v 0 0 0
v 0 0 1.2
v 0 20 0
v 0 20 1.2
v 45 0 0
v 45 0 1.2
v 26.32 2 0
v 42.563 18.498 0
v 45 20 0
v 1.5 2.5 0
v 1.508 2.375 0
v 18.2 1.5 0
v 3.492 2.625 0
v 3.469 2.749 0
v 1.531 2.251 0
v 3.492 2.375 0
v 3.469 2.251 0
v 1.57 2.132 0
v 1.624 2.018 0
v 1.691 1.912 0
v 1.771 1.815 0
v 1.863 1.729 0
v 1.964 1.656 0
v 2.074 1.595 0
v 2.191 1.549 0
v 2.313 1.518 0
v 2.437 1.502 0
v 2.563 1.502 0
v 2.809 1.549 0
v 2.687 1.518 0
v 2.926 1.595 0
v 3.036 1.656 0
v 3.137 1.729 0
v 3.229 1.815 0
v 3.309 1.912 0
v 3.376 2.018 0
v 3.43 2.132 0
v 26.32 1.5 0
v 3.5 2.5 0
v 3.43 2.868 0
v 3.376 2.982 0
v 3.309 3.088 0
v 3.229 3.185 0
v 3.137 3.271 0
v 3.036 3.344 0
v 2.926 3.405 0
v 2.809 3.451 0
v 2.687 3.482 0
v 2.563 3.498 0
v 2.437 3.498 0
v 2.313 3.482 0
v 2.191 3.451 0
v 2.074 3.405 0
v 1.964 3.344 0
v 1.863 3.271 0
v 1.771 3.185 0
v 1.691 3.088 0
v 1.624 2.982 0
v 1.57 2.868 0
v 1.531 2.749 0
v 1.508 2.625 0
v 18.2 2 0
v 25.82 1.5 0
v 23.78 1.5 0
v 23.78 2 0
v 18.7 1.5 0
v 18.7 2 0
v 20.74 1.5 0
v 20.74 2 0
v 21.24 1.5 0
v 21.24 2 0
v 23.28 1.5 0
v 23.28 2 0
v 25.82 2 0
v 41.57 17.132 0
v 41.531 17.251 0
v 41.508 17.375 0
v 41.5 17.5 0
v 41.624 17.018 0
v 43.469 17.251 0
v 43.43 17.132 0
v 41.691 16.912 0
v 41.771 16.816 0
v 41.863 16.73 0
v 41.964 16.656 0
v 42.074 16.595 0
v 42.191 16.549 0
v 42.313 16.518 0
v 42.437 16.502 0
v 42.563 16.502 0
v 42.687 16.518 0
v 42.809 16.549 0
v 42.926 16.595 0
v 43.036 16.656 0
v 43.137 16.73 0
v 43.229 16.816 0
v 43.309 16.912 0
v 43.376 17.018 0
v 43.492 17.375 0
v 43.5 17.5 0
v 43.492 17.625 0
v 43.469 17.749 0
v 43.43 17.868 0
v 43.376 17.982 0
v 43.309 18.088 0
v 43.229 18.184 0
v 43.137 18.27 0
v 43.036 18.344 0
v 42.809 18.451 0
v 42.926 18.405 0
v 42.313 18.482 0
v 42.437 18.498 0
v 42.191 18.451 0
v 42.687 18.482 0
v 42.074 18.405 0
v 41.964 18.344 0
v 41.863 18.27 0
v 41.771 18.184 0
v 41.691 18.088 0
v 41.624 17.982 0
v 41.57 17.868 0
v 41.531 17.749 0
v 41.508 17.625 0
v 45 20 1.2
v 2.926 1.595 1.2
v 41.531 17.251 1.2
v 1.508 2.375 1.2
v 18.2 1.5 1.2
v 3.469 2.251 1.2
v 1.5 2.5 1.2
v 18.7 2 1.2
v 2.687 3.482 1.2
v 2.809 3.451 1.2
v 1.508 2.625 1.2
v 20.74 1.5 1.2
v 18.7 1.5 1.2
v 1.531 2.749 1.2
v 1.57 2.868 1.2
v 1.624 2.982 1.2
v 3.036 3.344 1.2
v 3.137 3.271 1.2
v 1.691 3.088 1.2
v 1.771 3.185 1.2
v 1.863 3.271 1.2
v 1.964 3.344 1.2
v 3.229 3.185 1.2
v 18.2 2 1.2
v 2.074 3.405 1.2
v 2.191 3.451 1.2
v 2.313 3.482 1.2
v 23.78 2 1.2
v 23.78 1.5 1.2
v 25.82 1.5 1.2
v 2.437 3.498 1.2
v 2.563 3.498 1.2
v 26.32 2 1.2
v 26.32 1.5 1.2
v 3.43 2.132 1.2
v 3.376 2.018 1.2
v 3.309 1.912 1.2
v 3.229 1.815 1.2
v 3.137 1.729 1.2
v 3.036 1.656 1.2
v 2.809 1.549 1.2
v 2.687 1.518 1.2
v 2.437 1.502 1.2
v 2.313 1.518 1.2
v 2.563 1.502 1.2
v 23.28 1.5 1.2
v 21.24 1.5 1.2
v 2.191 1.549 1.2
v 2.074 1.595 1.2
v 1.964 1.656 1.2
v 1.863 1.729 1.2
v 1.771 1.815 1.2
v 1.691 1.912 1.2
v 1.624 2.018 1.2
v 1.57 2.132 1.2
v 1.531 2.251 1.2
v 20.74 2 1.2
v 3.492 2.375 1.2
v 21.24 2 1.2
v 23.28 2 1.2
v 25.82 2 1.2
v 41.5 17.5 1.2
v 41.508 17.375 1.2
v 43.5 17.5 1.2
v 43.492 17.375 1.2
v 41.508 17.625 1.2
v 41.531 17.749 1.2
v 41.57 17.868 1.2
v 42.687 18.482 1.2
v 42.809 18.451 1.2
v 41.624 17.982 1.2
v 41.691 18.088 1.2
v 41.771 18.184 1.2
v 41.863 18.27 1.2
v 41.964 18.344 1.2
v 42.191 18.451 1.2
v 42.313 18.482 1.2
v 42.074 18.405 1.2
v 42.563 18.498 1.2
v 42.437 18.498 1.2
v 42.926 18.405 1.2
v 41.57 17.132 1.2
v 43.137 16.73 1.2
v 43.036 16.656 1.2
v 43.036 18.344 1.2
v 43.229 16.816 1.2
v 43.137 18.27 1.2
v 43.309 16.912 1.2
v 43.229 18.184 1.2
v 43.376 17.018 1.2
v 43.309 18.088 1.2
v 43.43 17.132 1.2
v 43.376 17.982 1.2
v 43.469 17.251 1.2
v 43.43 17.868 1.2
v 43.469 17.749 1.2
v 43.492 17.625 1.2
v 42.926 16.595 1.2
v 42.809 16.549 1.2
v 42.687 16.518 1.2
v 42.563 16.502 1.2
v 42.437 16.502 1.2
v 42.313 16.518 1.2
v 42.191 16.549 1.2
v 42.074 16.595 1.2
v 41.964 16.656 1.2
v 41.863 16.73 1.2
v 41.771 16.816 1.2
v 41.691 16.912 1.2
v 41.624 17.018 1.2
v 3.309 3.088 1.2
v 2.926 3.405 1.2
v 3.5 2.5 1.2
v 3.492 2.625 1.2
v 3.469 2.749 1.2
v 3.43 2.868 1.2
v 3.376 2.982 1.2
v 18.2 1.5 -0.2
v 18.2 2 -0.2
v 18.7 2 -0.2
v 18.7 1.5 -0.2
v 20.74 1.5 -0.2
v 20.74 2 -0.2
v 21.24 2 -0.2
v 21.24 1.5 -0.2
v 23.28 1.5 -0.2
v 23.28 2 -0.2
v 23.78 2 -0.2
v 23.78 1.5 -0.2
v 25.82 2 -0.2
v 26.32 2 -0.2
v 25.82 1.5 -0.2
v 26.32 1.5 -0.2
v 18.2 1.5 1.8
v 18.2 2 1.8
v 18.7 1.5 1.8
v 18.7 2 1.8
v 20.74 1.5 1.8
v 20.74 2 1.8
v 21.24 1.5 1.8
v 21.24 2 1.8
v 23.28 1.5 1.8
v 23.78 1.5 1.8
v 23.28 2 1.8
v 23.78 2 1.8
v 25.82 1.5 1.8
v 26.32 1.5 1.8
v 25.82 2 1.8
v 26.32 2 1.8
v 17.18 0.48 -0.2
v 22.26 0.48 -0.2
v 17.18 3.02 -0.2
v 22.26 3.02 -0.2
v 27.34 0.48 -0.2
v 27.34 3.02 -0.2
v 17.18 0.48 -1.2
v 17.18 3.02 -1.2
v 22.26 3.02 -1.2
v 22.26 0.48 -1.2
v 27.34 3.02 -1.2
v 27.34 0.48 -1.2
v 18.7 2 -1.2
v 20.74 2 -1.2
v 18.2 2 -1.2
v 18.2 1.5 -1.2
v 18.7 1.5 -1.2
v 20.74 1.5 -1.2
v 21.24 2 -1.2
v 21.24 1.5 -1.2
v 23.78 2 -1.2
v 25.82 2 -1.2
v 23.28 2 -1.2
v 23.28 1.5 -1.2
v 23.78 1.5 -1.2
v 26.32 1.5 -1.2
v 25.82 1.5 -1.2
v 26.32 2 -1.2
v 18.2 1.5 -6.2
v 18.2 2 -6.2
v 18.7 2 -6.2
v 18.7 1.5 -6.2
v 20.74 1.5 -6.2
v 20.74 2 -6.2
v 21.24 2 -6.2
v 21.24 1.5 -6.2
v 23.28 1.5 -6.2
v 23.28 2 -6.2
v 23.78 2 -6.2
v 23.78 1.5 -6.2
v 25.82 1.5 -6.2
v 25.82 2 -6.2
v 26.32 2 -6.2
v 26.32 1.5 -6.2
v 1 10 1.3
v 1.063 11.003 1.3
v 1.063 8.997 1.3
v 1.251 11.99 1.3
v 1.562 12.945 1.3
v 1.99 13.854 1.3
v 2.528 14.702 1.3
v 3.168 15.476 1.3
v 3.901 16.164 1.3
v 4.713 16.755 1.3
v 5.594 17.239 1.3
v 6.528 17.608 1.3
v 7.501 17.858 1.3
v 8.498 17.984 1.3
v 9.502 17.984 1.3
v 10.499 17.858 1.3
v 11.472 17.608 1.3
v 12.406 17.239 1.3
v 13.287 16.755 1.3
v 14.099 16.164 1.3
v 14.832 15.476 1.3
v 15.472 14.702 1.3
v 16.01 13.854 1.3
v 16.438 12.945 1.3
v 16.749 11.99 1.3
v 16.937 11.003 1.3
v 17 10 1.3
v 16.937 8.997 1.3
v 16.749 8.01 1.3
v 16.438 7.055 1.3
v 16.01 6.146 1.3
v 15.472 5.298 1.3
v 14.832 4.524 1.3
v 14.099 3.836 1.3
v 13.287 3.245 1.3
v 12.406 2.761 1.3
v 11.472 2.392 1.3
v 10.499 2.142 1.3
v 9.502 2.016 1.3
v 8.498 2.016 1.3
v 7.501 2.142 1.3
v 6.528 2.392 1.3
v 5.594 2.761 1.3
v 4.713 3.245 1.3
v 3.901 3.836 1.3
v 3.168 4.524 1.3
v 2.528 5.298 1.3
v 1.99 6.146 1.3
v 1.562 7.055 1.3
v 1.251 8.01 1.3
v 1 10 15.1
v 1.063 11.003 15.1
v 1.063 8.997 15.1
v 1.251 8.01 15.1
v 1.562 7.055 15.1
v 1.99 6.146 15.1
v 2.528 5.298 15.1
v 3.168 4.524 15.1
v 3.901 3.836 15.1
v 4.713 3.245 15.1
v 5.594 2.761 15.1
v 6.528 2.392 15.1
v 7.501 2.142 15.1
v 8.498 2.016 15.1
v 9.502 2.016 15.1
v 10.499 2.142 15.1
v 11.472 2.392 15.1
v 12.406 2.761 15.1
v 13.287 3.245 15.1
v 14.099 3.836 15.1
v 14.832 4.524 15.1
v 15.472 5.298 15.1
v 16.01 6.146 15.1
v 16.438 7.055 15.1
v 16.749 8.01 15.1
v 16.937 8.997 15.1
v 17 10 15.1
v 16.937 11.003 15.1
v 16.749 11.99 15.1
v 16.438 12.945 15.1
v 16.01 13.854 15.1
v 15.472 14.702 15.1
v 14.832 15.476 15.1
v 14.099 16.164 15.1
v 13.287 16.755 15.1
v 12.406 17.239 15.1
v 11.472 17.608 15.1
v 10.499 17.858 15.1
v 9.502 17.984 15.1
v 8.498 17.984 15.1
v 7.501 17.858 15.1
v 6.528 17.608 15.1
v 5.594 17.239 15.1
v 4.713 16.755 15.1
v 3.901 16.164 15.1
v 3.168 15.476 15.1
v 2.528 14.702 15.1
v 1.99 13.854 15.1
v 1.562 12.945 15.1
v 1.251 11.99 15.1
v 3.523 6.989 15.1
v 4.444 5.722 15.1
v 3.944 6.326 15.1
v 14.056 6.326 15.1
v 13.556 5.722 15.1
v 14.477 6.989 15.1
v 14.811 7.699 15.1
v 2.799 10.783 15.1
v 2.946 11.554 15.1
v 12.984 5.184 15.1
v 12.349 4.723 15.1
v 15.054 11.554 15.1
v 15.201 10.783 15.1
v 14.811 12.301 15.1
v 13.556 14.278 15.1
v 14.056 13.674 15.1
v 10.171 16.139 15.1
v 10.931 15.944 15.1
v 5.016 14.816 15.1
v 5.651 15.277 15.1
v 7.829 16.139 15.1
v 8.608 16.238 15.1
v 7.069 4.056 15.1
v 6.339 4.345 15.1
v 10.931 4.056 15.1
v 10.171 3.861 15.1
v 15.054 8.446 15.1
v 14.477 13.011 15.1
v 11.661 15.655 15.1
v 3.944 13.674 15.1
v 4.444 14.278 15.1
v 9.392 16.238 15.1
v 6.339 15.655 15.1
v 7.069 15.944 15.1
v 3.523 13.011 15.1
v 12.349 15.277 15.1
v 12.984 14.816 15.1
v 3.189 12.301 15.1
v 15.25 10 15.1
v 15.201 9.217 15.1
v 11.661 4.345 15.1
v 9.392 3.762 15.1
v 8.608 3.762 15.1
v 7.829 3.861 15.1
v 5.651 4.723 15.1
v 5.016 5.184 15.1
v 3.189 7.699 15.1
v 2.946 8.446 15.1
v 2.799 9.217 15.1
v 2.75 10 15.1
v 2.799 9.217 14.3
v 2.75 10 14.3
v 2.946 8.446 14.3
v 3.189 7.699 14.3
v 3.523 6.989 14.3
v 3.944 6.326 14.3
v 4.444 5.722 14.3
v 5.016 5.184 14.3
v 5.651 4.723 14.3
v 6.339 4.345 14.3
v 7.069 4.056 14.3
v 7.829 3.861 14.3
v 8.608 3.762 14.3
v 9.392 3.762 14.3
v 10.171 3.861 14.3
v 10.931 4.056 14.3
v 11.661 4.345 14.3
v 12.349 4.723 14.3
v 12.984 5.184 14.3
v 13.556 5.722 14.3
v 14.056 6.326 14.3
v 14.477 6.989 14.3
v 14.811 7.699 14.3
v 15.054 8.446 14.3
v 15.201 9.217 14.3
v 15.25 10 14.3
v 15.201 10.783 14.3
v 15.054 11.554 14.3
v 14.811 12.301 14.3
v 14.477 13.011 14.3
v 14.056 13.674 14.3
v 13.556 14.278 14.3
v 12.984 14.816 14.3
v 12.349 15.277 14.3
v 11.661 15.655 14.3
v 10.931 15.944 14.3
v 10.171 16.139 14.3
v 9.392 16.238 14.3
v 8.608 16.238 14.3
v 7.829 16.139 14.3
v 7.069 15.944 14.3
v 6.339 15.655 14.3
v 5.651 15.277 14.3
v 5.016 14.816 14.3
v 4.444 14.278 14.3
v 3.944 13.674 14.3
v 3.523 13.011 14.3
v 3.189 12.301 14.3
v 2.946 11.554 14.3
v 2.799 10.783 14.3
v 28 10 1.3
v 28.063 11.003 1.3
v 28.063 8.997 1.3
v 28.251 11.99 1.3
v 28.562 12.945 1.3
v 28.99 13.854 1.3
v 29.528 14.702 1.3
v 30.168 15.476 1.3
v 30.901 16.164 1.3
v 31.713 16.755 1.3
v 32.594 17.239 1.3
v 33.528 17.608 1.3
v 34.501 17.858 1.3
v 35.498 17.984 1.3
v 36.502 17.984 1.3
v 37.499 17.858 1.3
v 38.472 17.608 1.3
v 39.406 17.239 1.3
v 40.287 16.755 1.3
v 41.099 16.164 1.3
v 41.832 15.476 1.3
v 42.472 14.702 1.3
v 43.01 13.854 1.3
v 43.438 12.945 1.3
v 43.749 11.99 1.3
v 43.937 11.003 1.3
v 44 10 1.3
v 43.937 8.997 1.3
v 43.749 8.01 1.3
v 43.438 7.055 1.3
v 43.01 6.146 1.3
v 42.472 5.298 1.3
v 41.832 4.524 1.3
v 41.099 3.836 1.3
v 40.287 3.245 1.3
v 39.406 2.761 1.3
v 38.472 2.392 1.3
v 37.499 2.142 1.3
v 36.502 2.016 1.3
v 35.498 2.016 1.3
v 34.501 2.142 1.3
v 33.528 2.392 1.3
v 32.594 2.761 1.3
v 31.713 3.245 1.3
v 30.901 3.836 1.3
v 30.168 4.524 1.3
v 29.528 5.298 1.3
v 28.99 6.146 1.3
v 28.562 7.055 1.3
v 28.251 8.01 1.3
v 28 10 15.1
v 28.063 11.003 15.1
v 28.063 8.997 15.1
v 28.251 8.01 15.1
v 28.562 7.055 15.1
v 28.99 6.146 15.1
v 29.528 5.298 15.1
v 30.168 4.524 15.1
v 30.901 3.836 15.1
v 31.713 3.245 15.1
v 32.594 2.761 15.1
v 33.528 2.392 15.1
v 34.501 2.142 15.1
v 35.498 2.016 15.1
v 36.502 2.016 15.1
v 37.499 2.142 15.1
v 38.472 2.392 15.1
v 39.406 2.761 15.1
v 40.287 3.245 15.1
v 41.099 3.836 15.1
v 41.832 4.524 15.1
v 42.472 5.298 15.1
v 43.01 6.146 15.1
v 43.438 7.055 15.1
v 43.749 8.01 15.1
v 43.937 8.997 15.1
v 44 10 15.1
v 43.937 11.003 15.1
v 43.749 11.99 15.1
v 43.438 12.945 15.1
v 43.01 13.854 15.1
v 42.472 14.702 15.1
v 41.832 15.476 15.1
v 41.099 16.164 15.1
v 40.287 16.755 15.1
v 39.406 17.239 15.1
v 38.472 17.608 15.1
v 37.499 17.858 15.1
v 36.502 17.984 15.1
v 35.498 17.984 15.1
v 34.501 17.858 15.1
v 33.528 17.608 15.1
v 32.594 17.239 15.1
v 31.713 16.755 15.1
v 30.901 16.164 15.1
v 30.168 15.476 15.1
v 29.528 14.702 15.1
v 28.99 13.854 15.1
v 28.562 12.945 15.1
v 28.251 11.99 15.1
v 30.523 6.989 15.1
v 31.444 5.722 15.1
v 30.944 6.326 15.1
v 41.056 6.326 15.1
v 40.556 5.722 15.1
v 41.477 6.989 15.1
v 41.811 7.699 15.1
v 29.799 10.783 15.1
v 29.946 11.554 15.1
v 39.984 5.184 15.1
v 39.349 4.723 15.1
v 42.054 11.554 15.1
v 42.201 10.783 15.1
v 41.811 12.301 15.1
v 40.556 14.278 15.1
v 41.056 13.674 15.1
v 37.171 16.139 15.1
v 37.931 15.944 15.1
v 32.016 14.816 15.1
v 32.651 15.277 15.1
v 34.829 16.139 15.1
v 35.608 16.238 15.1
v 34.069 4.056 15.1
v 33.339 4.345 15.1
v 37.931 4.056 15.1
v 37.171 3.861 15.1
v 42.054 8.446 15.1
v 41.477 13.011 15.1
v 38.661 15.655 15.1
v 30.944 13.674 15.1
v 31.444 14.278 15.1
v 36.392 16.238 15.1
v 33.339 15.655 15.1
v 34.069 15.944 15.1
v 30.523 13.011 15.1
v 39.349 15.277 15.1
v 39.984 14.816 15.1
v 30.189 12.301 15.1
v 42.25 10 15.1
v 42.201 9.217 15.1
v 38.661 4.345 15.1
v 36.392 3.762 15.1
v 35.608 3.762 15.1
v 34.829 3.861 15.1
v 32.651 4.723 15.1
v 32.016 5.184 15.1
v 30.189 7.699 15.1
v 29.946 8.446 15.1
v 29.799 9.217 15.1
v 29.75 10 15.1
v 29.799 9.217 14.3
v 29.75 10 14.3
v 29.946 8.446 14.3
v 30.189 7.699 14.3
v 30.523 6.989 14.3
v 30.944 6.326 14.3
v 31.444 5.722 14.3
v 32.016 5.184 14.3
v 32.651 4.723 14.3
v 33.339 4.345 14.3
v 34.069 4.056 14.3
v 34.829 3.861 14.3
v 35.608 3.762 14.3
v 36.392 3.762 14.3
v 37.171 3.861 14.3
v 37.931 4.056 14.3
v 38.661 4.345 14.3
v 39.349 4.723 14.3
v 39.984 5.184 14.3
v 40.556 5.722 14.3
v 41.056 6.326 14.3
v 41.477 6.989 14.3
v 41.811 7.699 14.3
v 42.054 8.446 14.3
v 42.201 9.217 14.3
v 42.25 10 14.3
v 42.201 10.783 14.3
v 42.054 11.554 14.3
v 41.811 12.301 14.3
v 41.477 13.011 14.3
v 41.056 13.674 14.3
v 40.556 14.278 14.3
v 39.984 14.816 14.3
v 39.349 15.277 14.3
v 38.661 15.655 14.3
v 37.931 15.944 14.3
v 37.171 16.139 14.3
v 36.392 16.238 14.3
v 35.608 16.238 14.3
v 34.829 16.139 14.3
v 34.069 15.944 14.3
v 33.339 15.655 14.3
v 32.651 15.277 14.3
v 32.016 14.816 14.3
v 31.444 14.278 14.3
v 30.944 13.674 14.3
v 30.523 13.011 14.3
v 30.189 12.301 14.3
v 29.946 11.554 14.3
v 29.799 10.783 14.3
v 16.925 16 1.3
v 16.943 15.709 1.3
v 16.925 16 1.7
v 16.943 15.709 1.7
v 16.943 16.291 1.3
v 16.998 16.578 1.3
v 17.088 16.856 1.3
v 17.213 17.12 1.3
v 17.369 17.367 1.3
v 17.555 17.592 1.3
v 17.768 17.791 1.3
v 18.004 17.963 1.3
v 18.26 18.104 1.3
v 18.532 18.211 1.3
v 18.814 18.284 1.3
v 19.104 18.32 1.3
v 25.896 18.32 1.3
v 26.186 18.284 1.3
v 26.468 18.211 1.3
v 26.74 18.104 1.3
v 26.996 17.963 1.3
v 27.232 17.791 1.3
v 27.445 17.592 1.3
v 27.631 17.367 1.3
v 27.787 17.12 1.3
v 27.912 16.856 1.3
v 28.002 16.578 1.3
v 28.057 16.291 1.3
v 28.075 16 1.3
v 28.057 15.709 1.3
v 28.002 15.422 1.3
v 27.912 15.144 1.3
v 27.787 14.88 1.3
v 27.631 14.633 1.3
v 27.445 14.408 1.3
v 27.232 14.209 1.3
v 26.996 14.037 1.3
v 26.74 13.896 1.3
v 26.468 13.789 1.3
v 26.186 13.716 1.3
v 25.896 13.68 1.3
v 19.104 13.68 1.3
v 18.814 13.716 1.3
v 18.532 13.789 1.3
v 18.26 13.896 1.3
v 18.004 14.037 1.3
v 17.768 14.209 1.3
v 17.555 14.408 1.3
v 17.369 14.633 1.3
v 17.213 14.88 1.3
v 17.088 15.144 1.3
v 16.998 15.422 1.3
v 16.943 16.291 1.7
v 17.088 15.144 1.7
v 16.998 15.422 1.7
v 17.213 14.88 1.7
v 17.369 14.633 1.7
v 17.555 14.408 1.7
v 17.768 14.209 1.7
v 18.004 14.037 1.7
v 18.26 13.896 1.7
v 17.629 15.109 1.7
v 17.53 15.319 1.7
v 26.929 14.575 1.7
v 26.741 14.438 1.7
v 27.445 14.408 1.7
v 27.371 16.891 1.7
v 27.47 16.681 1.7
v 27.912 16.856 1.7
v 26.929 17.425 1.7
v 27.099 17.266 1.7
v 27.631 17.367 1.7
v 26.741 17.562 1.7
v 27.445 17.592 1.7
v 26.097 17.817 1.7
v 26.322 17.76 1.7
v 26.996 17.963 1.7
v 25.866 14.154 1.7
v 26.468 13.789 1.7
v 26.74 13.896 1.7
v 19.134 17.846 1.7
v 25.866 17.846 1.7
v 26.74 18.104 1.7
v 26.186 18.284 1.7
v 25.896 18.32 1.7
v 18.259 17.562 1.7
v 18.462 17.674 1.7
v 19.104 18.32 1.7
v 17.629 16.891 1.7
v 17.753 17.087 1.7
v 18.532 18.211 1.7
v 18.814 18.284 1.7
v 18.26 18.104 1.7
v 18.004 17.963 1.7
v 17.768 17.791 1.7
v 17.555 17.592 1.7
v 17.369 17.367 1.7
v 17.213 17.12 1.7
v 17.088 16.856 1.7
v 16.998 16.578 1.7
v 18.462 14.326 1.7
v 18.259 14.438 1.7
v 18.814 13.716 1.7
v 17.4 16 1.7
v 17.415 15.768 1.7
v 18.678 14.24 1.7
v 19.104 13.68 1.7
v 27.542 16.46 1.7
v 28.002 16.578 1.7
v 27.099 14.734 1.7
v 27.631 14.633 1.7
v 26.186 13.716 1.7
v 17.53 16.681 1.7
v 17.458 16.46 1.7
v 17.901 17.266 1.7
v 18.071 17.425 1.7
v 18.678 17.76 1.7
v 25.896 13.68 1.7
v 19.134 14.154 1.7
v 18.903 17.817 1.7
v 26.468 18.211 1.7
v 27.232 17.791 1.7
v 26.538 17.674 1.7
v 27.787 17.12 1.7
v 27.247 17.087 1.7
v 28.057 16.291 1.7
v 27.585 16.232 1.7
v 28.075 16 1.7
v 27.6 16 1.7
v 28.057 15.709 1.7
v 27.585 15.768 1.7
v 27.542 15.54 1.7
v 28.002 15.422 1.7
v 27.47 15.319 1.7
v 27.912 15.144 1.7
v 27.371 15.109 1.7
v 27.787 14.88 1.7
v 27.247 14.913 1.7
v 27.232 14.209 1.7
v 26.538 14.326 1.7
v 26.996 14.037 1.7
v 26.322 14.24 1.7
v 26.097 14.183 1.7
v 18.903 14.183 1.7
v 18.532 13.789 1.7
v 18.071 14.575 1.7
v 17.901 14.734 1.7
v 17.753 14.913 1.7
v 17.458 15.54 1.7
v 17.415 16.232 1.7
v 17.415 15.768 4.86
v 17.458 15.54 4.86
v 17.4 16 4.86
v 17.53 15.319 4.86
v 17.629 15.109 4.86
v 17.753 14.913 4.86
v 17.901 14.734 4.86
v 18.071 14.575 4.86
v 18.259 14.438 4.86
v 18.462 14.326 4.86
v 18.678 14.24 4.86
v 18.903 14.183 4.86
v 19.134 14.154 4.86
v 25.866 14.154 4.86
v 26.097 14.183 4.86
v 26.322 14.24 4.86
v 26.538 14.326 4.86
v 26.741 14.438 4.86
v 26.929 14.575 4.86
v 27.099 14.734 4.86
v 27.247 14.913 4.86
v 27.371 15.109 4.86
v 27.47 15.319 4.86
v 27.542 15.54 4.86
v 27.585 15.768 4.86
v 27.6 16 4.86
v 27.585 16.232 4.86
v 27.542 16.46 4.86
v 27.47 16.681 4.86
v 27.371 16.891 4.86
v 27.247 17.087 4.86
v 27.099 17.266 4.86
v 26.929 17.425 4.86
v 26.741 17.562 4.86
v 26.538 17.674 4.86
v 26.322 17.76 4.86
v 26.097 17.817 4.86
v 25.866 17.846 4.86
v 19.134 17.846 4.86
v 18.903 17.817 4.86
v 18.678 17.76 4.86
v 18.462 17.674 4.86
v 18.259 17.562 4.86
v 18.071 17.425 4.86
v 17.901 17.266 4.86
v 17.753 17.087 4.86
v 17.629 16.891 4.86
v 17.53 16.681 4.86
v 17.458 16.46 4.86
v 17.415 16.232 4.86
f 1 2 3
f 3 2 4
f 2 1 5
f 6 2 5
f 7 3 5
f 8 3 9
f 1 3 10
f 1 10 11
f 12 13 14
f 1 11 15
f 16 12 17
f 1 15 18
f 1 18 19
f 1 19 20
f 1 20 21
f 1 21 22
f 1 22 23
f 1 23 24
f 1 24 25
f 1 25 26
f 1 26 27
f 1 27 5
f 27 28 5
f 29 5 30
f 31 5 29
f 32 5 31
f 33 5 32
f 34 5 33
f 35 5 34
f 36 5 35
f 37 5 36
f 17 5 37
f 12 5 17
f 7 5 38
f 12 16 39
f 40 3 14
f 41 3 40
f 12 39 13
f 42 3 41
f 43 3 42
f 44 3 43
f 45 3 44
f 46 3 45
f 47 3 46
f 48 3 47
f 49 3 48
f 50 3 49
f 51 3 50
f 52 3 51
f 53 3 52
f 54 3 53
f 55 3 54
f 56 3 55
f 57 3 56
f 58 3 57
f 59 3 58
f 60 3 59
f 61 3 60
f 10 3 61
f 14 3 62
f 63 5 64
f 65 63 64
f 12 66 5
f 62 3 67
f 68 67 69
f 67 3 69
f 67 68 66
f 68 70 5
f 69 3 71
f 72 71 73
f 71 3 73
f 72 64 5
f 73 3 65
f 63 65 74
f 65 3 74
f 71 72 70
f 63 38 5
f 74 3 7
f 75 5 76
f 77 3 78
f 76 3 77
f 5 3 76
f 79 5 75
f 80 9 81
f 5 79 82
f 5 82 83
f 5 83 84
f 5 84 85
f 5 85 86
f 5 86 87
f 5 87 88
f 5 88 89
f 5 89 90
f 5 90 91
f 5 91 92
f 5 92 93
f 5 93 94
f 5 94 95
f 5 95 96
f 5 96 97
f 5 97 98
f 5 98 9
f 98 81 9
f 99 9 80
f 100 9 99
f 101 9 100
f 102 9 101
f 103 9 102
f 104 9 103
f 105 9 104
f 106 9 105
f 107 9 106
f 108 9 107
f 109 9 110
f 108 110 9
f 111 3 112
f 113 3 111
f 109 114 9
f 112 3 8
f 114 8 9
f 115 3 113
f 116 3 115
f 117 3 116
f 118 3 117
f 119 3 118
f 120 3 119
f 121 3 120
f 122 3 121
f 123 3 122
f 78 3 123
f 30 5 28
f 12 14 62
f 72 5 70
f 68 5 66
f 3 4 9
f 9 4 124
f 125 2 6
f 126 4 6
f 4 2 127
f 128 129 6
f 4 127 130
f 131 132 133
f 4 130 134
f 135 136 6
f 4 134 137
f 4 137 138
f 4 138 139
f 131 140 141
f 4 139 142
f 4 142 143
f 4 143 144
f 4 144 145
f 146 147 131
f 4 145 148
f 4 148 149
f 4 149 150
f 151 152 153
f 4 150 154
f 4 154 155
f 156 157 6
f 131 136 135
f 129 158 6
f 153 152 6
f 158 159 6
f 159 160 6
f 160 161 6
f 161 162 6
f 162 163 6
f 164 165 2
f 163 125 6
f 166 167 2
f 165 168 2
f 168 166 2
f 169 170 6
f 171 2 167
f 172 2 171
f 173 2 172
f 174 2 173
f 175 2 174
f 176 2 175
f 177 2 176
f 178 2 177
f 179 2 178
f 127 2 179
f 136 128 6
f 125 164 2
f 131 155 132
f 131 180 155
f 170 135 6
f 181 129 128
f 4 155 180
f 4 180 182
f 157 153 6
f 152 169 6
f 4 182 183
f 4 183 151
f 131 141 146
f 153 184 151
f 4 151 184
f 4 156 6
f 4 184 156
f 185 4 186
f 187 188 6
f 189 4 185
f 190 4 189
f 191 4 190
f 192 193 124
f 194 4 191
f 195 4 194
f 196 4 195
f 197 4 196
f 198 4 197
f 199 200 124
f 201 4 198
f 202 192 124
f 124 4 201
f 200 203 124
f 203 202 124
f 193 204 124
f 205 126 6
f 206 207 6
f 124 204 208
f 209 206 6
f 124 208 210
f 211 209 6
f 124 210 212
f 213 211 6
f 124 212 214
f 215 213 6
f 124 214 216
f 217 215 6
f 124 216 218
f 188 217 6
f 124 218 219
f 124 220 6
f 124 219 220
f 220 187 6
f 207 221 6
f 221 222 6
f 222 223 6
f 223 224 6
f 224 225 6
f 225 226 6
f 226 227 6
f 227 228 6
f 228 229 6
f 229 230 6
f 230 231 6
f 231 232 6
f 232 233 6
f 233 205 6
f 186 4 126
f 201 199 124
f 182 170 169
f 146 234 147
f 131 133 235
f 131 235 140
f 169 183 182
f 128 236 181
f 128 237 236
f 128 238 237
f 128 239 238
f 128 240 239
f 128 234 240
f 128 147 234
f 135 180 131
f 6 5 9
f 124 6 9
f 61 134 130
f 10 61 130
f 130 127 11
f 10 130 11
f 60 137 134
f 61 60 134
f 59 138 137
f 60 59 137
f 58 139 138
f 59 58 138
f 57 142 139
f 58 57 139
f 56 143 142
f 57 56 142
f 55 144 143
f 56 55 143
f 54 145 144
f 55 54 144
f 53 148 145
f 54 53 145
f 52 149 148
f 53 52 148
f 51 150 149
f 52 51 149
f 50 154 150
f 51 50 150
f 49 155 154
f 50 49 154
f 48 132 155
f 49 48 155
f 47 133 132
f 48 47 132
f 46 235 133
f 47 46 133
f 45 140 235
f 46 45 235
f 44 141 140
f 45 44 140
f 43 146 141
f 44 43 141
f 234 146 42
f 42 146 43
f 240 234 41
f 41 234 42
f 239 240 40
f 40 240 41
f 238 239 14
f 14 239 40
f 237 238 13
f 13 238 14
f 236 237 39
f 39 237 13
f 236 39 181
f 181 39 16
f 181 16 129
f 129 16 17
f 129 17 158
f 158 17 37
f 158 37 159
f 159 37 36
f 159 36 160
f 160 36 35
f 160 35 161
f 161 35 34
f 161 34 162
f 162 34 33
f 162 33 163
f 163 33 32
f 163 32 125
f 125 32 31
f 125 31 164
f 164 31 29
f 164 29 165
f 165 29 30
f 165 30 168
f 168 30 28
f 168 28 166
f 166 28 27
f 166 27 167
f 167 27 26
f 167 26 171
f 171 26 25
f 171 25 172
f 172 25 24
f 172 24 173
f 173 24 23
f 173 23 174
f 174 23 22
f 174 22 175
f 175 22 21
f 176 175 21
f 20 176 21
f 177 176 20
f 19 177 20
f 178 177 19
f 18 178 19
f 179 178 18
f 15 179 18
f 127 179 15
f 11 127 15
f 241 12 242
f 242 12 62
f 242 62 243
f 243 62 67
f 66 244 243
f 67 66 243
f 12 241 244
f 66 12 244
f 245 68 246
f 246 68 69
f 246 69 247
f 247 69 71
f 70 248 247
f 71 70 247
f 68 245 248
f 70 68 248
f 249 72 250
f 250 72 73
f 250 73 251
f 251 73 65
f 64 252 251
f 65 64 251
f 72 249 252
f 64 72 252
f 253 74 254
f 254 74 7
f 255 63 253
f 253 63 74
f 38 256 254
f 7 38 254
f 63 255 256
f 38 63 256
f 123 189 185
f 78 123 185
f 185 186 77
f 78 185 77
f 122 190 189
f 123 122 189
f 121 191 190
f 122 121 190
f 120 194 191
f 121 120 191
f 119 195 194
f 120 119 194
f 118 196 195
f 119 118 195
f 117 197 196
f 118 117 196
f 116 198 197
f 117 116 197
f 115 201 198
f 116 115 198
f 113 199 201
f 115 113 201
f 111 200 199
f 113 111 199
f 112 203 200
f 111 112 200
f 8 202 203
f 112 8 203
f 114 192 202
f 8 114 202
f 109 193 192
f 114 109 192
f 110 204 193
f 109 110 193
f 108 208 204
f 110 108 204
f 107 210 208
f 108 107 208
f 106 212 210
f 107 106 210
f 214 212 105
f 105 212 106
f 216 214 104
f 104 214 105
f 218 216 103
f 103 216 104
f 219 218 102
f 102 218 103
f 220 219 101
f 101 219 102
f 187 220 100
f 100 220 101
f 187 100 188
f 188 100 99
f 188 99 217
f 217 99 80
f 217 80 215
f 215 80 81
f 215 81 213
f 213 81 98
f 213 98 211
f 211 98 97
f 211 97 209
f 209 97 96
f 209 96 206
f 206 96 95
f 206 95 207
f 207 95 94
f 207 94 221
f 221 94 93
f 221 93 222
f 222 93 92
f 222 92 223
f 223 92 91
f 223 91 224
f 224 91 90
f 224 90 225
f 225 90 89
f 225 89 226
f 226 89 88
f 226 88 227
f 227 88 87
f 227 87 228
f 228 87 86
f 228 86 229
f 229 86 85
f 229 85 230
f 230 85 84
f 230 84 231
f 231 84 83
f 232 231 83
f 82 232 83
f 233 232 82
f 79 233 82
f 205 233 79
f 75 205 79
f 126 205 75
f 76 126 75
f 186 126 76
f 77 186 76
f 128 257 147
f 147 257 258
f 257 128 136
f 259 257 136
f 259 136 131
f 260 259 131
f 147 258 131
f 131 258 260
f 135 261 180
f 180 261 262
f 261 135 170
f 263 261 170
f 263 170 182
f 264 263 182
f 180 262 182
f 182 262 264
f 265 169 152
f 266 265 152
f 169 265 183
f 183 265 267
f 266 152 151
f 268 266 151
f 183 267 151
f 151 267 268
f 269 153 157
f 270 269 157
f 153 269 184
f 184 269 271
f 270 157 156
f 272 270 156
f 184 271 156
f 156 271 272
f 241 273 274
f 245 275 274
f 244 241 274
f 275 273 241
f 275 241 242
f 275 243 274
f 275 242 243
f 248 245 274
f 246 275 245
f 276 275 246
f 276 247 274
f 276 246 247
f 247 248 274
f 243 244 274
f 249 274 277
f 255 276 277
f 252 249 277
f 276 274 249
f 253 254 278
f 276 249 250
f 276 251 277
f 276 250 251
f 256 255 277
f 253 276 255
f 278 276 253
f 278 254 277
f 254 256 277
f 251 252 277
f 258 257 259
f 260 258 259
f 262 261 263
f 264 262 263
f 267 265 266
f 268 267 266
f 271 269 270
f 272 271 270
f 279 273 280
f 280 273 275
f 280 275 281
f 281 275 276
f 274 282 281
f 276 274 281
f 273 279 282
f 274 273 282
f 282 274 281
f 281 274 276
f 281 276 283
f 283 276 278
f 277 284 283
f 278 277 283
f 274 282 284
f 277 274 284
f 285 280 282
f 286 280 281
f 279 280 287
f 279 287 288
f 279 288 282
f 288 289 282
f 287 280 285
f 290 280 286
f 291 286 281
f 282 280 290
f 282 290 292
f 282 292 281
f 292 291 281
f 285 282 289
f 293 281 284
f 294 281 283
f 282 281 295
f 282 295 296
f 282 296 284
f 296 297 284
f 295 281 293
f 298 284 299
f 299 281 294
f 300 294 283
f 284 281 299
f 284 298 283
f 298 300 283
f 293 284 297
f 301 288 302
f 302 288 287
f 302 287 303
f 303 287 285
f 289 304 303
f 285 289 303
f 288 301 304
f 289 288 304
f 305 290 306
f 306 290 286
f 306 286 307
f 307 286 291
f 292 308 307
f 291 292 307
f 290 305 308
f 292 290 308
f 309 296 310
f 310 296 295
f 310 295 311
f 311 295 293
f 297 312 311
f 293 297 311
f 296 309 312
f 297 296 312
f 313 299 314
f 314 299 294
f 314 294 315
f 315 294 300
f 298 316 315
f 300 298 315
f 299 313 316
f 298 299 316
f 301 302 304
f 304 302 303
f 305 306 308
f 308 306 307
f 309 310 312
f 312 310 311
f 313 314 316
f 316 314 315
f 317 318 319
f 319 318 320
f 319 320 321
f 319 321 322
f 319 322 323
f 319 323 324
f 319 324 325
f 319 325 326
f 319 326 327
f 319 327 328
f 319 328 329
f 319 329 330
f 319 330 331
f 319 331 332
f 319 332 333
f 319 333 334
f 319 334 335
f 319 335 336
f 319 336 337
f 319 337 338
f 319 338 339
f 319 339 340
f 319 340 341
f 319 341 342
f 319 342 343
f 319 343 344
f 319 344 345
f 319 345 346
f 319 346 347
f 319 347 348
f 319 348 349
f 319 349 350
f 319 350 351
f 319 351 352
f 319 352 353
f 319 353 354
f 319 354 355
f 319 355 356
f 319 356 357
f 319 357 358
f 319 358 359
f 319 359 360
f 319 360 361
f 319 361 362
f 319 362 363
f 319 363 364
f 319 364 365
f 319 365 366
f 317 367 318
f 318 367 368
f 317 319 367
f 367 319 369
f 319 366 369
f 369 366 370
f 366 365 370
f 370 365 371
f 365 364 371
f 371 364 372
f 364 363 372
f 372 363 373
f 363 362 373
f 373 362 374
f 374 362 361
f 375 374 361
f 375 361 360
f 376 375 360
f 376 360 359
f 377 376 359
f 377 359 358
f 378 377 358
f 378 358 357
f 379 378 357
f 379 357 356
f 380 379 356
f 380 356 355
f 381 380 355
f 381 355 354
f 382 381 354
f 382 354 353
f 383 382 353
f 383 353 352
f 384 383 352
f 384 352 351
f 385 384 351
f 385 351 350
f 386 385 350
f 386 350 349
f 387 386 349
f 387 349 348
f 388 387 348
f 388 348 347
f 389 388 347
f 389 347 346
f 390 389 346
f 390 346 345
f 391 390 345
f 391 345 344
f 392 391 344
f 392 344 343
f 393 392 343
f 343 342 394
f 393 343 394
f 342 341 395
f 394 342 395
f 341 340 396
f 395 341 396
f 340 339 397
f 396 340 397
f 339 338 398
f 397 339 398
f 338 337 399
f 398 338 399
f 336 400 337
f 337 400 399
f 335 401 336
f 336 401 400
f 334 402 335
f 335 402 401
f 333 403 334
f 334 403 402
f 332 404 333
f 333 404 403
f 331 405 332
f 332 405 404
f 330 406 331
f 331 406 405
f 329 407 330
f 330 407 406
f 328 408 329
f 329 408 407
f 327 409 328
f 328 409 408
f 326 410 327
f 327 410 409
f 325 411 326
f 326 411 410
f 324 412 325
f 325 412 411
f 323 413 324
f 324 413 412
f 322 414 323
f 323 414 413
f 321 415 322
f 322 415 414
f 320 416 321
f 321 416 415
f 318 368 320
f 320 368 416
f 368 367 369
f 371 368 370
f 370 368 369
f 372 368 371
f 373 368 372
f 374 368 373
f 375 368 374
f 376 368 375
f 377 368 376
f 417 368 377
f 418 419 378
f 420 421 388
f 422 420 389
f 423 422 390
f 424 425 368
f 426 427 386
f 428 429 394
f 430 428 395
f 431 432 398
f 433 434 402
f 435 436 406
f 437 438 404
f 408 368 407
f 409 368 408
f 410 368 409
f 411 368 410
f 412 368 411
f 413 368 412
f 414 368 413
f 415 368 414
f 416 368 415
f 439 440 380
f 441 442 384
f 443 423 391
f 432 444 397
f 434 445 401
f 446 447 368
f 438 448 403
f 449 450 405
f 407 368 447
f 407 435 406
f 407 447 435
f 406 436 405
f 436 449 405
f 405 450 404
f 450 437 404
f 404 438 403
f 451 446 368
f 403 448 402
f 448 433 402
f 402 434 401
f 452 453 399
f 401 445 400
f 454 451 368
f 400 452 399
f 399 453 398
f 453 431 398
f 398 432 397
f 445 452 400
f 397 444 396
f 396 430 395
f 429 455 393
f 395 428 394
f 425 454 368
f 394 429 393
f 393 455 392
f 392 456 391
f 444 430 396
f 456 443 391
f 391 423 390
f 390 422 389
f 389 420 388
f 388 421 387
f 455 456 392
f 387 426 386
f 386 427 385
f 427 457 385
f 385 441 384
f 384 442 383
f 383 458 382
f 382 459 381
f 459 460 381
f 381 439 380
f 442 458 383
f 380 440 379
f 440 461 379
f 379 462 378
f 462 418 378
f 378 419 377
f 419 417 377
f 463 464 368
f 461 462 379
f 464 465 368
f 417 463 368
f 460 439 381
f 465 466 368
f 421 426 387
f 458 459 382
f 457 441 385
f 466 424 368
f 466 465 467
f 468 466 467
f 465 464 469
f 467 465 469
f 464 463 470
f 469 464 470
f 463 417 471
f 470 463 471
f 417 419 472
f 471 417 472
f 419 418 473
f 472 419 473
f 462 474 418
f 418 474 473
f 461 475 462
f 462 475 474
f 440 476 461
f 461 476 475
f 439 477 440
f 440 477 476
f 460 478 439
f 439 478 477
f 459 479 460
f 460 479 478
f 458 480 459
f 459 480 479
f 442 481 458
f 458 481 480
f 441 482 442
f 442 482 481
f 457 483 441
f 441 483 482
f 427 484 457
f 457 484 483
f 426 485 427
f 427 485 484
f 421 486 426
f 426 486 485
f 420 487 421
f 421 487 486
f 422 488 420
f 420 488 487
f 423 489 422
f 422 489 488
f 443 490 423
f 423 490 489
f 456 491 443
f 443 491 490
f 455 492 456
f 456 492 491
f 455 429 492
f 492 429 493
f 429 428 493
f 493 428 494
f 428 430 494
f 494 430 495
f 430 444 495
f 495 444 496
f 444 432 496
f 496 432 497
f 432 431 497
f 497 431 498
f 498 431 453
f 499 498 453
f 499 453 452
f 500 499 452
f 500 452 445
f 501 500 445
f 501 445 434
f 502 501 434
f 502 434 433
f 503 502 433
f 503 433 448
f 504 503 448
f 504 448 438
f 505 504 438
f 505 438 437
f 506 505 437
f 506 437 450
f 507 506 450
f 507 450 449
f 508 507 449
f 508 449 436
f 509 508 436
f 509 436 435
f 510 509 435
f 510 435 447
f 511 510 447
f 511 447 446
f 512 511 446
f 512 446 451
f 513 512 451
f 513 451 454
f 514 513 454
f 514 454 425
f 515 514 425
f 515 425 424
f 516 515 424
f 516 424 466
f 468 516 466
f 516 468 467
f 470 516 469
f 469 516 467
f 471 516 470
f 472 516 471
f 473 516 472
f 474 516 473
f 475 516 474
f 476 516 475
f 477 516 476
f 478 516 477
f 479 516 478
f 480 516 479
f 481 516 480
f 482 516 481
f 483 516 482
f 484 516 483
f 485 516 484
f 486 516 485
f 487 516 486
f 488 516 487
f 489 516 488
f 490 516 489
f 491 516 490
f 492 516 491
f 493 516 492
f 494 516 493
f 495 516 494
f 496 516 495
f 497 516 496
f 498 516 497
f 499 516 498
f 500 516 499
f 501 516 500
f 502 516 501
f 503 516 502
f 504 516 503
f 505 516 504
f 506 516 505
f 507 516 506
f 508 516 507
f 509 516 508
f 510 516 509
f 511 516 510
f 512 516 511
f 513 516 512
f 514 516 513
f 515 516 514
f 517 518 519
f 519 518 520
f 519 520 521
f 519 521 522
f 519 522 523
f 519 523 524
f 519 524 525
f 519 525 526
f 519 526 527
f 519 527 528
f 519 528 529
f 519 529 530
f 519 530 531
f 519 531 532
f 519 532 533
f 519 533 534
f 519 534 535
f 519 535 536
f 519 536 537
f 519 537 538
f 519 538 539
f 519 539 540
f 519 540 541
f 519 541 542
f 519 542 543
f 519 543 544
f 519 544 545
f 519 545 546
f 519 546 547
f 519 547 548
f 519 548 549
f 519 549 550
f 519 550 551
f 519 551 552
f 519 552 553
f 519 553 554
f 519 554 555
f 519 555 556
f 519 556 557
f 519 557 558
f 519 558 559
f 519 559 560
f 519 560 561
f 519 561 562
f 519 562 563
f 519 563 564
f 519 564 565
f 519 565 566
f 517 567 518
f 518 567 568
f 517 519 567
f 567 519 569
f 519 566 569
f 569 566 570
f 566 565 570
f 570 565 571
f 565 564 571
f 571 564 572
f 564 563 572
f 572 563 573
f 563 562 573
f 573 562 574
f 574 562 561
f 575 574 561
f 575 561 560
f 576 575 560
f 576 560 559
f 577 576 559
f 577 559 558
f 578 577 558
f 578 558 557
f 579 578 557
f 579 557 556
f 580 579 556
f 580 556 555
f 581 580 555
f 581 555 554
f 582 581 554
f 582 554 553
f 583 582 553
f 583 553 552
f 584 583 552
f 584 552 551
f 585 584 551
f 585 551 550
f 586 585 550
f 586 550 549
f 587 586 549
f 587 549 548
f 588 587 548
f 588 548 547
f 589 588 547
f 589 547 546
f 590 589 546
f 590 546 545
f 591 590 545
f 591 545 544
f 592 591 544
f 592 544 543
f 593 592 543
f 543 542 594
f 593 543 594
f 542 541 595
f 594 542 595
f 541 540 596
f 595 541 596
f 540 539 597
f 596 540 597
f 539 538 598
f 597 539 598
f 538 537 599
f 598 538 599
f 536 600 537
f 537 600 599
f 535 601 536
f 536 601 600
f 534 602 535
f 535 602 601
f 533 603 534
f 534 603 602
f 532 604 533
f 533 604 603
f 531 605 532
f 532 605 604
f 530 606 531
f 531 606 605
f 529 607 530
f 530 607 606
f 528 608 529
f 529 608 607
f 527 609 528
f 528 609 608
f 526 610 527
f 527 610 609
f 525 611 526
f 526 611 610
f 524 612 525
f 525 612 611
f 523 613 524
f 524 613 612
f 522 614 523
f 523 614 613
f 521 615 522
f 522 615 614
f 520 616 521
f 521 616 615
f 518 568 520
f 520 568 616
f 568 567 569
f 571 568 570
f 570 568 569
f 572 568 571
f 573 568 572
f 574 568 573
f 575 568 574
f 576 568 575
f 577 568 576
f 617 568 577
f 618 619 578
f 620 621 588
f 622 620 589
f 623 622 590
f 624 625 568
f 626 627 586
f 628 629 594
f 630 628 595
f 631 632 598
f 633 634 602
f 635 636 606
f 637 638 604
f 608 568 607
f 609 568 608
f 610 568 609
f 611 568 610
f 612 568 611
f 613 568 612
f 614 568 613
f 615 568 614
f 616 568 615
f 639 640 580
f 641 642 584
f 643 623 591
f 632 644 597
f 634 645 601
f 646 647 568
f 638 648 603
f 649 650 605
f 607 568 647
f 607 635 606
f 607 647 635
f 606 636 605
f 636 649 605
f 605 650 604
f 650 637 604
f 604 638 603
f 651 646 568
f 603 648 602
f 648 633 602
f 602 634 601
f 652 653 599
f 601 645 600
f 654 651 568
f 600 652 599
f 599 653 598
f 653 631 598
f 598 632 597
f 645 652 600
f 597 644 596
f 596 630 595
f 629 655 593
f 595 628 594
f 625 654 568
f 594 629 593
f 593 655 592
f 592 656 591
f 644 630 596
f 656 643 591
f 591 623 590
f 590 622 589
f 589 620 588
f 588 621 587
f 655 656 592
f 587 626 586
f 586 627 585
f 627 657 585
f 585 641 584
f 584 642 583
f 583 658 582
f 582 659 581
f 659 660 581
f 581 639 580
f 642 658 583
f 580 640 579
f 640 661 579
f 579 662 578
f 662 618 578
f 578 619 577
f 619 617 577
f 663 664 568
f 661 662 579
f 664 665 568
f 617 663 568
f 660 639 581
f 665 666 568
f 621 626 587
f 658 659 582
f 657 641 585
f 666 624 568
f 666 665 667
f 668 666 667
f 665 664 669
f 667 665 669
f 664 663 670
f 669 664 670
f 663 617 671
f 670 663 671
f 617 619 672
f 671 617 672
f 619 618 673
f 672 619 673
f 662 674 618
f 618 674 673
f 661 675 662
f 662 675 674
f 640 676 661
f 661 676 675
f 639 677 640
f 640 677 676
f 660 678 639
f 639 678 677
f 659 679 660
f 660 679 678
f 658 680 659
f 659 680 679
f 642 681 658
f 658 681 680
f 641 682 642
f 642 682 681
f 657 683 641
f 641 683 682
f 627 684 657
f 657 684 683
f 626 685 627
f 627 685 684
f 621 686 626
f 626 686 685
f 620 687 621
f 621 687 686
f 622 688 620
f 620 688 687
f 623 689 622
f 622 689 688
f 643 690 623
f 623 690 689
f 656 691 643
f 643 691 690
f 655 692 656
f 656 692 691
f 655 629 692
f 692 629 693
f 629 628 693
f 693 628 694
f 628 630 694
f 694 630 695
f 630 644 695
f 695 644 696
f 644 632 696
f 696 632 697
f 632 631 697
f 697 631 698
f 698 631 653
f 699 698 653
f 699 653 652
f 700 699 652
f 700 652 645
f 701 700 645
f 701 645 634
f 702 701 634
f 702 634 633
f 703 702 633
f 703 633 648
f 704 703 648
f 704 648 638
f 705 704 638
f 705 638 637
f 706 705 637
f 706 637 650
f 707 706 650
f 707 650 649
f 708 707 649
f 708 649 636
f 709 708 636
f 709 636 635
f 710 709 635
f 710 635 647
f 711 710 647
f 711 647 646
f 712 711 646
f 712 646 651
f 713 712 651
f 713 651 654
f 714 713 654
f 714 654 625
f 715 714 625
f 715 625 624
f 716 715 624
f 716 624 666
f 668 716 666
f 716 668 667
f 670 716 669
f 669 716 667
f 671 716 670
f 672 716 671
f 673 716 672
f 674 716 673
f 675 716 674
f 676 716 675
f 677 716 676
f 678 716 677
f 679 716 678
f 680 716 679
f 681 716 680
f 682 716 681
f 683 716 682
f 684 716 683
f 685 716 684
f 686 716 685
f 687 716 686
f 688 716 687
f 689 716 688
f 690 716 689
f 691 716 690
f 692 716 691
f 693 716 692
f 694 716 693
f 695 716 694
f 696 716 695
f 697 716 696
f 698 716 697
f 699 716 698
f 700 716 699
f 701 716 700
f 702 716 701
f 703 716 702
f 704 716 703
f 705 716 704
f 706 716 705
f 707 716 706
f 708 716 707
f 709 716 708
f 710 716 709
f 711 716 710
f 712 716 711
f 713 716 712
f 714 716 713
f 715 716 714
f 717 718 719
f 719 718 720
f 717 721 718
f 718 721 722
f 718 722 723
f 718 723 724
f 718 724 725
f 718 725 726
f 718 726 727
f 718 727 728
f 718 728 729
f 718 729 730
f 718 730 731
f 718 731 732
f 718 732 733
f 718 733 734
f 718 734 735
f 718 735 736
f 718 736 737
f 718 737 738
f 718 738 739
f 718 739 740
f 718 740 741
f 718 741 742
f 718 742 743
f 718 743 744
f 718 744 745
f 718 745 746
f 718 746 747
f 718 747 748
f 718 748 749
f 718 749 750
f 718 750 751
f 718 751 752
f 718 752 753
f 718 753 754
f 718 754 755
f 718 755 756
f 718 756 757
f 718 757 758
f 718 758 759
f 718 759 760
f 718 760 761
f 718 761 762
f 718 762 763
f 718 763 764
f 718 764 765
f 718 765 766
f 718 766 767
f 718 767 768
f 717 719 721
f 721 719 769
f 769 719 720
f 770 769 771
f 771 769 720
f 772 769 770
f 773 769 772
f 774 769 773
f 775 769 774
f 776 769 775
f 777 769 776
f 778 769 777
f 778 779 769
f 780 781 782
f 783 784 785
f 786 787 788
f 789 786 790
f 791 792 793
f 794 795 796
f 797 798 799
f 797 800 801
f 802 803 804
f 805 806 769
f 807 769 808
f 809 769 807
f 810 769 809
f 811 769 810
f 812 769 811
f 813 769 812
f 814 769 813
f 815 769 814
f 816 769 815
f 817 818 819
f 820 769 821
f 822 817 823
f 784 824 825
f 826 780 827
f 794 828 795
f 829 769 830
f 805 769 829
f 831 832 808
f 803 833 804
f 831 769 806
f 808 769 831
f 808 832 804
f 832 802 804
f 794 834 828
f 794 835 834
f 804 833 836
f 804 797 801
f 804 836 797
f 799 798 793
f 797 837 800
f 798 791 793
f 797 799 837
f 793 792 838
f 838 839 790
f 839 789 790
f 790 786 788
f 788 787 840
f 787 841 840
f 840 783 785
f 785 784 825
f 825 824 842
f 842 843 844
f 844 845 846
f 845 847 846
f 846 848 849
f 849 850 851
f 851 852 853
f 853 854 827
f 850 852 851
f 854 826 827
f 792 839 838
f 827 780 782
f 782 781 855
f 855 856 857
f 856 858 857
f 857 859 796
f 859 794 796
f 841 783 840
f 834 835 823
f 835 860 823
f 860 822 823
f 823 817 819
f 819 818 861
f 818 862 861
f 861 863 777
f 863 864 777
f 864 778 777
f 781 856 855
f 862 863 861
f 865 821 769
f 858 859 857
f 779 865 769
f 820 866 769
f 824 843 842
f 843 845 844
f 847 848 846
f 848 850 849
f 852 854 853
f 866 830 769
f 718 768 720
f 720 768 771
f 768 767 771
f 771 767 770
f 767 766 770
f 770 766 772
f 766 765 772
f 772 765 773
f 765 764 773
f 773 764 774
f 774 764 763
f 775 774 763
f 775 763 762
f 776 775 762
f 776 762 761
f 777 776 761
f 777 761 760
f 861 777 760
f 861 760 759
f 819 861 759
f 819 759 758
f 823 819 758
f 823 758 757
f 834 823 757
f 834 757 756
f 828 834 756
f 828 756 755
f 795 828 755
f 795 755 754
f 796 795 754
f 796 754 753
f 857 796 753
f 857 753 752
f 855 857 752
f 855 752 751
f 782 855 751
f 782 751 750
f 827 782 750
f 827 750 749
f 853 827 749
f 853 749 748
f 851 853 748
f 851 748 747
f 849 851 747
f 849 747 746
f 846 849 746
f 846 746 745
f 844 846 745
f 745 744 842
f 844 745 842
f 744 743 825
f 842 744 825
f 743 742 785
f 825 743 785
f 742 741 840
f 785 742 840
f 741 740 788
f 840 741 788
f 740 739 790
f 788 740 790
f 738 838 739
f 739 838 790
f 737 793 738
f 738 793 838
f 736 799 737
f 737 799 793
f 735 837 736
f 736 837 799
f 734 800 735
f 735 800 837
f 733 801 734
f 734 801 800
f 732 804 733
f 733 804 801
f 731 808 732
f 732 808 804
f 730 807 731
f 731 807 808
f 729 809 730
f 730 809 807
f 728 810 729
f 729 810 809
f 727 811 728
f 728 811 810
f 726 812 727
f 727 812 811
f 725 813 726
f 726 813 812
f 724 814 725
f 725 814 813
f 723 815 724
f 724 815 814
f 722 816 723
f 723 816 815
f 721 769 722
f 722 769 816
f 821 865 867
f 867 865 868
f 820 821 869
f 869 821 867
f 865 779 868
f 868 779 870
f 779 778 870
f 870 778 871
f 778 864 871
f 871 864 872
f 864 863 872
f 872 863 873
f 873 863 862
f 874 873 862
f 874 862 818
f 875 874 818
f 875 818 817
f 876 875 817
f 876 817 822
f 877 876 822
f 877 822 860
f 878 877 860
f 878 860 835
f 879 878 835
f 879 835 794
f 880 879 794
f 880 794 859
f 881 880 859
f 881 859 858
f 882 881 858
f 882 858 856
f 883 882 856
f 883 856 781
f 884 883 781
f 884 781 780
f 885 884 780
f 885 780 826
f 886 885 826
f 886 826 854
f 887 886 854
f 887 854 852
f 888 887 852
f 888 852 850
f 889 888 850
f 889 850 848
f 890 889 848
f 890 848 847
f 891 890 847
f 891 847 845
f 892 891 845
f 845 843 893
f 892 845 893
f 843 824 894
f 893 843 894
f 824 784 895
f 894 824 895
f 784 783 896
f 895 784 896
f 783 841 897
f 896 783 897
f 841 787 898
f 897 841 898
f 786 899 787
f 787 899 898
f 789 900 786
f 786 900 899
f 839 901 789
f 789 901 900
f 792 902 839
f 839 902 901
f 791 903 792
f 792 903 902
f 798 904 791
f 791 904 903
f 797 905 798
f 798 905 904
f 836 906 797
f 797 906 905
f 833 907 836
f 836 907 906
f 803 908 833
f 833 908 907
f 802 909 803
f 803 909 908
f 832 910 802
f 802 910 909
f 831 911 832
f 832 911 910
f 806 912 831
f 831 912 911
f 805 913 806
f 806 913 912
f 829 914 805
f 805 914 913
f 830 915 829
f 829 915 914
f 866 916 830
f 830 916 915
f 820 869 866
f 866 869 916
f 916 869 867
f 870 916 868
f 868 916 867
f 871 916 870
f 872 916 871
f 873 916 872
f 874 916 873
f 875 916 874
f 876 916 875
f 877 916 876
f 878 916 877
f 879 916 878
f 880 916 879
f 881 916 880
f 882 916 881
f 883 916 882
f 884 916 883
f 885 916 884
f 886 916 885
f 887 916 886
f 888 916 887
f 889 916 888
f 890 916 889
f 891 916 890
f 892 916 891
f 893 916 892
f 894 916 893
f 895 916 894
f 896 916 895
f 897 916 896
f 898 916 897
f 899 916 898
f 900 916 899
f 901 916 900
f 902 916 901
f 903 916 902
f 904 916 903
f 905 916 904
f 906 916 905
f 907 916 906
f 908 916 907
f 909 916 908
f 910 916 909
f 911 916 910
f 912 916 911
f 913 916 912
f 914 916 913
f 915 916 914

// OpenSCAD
//HC-SR04 Ultrasonic distance sensor module

//Mark Benson

//23/07/2013

//Creative Commons non commercial

//http://www.thingiverse.com/thing:122136

difference()
{
	union()
	{
		color("DARKBLUE")cube([45,20,1.2]);
		translate([16/2+1,18/2+1,1.3]) ultrasonicSensor();
		translate([16/2+27+1,18/2+1,1.3]) ultrasonicSensor();
		color("SILVER")translate([45/2-3.25,20-4,1.3]) xtal();
		translate([(45/2)-((2.45*4)/2)+0.6,2,-0.2]) rotate([180,0,0]) headerPin(4);
	}

	union()
	{
		color("DARKBLUE") translate([2.5,2.5,-1]) cylinder(r=2/2, h=3, $fn=50);
		color("DARKBLUE") translate([2.5+40,2.5+15,-1]) cylinder(r=2/2, h=3, $fn=50);
	}
}

module ultrasonicSensor()
{
	union()
	{
		//Sensor body
		color("SILVER")
		difference()
		{
			//Body
			translate([0,0,0]) cylinder(r=16/2, h=13.8, $fn=50);
			//Hole in body
			translate([0,0,0]) cylinder(r=12.5/2, h=14, $fn=50);
		}

		//Insert to indicate mesh
		color("GREY") translate([0,0,0]) cylinder(r=12.5/2, h=13, $fn=50);
	}
}


module xtal()
{
	//Xtal maximum dimensions for checking model
	//color("red")translate([0,0,-1]) cube([11.5,4.65,1]);
	//color("red")translate([(11.54-10.3)/2,(4.65-3.8)/2,0]) cube([10.3,3.8,3.56]);
	
	union()
	{
		//Base
		hull()
		{
			translate([0,0,0]) cylinder(r=4.65/2, h=0.4, $fn=50);
			translate([6.5,0,0]) cylinder(r=4.65/2, h=0.4, $fn=50);
		}
	
		//Body
		hull()
		{
			translate([0,0,0]) cylinder(r=3.7/2, h=3.56, $fn=50);
			translate([6.5,0,0]) cylinder(r=3.7/2, h=3.56, $fn=50);
		}
	}
}

module headerPin(numberOfPins)
{
	for (i = [0:numberOfPins-1])
	{
		color("GOLD") translate([(i*2.54),0,-2]) cube([0.5,0.5,8]);
		color("BLACK") translate([(i*2.54-2.54/2+0.25),-2.54/2+0.25,0]) cube([2.54,2.54,1]);
	}
}

//Example call to headerPin module. The integer passed in defines the number of pins in the model
//headerPin(4);


//Call model - comment out when including this file in another model
//ultrasonicSensor(); 
